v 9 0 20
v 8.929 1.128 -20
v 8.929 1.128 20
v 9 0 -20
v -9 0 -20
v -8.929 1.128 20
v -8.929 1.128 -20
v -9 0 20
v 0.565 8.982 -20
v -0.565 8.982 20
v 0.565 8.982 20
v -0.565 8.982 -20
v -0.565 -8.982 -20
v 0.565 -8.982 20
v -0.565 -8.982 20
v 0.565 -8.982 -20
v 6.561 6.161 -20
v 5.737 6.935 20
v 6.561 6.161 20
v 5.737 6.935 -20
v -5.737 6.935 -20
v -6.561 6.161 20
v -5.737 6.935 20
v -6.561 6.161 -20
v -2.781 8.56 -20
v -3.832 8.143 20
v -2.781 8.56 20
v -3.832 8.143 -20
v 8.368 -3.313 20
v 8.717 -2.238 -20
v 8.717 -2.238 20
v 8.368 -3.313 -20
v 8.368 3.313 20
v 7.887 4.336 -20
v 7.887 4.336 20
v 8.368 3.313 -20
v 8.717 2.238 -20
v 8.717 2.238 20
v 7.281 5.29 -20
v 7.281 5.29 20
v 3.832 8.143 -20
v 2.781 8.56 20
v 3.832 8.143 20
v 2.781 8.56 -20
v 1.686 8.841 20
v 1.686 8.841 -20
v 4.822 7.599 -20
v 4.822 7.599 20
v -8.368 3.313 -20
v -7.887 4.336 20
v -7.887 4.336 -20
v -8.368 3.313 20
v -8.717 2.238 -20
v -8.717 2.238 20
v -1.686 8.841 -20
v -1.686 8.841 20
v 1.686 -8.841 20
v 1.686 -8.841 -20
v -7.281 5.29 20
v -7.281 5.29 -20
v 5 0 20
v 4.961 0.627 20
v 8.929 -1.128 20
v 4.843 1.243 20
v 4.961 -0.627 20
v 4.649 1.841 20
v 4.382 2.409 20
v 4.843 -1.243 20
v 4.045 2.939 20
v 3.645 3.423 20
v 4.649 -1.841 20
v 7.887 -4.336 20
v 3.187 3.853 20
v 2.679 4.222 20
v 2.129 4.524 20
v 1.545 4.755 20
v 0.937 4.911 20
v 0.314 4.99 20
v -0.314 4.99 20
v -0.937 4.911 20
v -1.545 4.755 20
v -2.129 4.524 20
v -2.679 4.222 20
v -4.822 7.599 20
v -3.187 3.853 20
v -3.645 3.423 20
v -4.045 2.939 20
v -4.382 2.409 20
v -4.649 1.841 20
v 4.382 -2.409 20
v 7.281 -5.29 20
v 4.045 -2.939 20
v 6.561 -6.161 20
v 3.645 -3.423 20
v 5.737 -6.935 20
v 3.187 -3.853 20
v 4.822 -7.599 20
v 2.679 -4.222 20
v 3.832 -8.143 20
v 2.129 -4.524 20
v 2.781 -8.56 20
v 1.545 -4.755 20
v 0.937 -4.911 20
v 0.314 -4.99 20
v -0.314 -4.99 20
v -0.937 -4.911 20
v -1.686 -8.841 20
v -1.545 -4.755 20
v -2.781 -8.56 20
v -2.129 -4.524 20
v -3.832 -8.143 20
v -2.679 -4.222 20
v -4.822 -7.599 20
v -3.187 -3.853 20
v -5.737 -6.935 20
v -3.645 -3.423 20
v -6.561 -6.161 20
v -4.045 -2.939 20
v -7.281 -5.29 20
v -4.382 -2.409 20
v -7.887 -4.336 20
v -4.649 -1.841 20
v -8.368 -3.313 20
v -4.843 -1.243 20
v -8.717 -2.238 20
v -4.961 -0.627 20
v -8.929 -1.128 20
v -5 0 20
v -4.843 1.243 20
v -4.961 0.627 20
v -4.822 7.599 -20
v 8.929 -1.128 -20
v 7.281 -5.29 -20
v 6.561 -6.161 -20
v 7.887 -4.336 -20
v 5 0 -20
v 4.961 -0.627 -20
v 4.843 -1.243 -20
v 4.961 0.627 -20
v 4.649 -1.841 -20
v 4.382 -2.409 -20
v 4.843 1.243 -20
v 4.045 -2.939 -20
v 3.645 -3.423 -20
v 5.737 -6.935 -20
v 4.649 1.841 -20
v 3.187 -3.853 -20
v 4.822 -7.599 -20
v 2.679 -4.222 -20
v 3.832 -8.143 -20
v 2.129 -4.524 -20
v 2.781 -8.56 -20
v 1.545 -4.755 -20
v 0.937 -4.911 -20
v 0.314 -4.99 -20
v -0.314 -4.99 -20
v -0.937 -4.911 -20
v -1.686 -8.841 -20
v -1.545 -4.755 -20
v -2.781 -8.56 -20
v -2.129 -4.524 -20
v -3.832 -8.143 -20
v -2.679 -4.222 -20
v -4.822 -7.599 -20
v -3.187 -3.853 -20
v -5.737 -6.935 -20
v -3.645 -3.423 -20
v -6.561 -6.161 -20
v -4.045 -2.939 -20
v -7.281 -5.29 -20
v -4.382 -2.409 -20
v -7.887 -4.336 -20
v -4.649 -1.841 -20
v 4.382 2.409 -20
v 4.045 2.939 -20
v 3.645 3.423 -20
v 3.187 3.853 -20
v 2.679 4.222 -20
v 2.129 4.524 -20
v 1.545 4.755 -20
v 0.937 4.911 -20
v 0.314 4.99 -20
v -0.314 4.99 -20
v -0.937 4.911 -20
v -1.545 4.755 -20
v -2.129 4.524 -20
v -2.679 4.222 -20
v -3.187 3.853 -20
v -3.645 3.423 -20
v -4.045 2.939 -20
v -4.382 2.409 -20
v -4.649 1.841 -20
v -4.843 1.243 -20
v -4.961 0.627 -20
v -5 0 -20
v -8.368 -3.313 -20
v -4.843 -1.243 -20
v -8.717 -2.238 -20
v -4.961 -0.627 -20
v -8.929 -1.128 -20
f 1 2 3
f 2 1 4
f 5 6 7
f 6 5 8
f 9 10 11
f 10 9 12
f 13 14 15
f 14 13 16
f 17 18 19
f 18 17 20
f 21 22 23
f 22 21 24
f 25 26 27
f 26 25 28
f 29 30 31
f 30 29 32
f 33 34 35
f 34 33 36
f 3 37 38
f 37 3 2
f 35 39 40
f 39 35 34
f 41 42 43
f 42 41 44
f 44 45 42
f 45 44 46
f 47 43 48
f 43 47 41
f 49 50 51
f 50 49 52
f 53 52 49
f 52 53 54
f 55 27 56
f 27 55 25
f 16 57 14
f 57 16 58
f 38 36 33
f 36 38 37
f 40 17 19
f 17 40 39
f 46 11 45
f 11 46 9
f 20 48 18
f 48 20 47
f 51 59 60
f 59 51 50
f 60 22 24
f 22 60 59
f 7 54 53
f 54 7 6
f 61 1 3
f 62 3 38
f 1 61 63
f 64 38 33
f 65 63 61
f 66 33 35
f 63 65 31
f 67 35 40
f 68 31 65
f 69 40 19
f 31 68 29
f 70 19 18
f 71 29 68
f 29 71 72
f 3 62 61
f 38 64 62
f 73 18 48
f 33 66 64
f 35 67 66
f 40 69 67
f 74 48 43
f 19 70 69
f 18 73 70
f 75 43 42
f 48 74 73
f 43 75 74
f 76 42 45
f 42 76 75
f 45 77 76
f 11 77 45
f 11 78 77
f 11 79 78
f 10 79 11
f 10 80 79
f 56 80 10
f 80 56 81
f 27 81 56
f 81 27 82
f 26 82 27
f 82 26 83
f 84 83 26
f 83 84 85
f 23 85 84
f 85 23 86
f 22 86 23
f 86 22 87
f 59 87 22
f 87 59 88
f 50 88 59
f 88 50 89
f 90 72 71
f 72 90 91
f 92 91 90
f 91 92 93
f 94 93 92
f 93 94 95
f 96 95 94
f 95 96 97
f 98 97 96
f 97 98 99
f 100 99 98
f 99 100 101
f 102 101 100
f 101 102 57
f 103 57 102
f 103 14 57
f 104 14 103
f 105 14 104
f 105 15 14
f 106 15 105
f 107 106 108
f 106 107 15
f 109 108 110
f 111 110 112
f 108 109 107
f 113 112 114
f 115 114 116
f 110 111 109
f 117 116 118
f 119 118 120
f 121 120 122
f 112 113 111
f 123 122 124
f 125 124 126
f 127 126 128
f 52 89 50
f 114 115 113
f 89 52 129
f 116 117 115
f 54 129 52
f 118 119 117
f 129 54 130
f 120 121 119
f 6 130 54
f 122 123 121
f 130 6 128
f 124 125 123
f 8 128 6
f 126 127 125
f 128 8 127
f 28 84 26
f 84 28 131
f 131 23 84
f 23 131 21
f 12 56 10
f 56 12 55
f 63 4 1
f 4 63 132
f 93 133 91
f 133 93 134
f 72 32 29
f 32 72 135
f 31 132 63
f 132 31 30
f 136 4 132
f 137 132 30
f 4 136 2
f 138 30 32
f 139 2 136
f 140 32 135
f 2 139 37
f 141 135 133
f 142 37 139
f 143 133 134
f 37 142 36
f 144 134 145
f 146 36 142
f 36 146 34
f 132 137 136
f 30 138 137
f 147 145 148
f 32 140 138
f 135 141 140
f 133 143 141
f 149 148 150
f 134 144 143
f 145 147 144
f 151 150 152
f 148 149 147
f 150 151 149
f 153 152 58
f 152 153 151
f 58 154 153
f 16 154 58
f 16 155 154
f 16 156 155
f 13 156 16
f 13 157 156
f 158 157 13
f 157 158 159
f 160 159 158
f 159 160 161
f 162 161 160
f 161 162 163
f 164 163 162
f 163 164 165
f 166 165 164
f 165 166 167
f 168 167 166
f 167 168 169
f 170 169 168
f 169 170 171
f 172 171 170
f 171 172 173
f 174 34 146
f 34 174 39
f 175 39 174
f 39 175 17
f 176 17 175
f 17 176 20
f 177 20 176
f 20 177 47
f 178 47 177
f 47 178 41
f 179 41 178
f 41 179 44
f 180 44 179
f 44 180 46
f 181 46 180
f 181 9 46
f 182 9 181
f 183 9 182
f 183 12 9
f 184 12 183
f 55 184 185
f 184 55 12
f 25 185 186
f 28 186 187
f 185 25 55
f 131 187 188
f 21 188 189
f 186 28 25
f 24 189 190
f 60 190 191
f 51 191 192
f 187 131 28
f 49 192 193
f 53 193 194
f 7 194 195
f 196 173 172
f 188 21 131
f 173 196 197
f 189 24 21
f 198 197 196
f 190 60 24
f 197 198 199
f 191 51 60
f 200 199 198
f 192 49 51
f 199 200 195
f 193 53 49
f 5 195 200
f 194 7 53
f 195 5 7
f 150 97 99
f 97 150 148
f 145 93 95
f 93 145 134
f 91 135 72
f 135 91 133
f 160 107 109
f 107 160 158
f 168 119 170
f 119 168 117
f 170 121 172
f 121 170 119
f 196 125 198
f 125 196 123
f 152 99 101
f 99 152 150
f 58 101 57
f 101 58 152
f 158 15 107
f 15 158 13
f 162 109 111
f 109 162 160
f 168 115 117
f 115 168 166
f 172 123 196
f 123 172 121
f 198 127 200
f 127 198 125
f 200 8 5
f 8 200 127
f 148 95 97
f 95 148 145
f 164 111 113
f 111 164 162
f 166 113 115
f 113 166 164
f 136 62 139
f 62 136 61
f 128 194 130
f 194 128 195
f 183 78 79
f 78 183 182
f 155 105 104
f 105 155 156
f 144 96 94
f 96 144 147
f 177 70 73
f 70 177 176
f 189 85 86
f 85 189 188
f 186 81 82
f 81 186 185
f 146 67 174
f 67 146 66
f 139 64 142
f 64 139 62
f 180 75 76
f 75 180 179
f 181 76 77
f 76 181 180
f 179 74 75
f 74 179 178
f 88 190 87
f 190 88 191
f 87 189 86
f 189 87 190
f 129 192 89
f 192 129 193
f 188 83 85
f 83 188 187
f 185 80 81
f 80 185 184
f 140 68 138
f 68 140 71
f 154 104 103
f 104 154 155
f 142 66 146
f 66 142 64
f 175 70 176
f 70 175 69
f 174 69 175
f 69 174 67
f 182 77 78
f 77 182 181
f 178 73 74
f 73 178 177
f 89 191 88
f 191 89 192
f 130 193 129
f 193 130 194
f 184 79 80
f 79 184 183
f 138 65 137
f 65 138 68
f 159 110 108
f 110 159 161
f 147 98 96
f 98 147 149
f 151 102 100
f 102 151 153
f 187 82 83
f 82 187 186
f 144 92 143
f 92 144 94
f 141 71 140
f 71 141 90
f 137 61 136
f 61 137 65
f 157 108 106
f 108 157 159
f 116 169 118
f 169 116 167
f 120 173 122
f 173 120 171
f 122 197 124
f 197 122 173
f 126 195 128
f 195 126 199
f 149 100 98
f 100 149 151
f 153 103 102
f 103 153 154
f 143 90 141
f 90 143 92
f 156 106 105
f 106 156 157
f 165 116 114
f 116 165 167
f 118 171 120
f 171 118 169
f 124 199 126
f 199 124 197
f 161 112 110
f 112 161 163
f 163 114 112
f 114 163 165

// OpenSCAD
$fn = 50;


difference() {
	union() {
		translate(v = [0, 0, -20.0000000000]) {
			cylinder(h = 40, r = 9.0000000000);
		}
	}
	union() {
		translate(v = [0, 0, -100.0000000000]) {
			cylinder(h = 200, r = 5.0000000000);
		}
	}
}
